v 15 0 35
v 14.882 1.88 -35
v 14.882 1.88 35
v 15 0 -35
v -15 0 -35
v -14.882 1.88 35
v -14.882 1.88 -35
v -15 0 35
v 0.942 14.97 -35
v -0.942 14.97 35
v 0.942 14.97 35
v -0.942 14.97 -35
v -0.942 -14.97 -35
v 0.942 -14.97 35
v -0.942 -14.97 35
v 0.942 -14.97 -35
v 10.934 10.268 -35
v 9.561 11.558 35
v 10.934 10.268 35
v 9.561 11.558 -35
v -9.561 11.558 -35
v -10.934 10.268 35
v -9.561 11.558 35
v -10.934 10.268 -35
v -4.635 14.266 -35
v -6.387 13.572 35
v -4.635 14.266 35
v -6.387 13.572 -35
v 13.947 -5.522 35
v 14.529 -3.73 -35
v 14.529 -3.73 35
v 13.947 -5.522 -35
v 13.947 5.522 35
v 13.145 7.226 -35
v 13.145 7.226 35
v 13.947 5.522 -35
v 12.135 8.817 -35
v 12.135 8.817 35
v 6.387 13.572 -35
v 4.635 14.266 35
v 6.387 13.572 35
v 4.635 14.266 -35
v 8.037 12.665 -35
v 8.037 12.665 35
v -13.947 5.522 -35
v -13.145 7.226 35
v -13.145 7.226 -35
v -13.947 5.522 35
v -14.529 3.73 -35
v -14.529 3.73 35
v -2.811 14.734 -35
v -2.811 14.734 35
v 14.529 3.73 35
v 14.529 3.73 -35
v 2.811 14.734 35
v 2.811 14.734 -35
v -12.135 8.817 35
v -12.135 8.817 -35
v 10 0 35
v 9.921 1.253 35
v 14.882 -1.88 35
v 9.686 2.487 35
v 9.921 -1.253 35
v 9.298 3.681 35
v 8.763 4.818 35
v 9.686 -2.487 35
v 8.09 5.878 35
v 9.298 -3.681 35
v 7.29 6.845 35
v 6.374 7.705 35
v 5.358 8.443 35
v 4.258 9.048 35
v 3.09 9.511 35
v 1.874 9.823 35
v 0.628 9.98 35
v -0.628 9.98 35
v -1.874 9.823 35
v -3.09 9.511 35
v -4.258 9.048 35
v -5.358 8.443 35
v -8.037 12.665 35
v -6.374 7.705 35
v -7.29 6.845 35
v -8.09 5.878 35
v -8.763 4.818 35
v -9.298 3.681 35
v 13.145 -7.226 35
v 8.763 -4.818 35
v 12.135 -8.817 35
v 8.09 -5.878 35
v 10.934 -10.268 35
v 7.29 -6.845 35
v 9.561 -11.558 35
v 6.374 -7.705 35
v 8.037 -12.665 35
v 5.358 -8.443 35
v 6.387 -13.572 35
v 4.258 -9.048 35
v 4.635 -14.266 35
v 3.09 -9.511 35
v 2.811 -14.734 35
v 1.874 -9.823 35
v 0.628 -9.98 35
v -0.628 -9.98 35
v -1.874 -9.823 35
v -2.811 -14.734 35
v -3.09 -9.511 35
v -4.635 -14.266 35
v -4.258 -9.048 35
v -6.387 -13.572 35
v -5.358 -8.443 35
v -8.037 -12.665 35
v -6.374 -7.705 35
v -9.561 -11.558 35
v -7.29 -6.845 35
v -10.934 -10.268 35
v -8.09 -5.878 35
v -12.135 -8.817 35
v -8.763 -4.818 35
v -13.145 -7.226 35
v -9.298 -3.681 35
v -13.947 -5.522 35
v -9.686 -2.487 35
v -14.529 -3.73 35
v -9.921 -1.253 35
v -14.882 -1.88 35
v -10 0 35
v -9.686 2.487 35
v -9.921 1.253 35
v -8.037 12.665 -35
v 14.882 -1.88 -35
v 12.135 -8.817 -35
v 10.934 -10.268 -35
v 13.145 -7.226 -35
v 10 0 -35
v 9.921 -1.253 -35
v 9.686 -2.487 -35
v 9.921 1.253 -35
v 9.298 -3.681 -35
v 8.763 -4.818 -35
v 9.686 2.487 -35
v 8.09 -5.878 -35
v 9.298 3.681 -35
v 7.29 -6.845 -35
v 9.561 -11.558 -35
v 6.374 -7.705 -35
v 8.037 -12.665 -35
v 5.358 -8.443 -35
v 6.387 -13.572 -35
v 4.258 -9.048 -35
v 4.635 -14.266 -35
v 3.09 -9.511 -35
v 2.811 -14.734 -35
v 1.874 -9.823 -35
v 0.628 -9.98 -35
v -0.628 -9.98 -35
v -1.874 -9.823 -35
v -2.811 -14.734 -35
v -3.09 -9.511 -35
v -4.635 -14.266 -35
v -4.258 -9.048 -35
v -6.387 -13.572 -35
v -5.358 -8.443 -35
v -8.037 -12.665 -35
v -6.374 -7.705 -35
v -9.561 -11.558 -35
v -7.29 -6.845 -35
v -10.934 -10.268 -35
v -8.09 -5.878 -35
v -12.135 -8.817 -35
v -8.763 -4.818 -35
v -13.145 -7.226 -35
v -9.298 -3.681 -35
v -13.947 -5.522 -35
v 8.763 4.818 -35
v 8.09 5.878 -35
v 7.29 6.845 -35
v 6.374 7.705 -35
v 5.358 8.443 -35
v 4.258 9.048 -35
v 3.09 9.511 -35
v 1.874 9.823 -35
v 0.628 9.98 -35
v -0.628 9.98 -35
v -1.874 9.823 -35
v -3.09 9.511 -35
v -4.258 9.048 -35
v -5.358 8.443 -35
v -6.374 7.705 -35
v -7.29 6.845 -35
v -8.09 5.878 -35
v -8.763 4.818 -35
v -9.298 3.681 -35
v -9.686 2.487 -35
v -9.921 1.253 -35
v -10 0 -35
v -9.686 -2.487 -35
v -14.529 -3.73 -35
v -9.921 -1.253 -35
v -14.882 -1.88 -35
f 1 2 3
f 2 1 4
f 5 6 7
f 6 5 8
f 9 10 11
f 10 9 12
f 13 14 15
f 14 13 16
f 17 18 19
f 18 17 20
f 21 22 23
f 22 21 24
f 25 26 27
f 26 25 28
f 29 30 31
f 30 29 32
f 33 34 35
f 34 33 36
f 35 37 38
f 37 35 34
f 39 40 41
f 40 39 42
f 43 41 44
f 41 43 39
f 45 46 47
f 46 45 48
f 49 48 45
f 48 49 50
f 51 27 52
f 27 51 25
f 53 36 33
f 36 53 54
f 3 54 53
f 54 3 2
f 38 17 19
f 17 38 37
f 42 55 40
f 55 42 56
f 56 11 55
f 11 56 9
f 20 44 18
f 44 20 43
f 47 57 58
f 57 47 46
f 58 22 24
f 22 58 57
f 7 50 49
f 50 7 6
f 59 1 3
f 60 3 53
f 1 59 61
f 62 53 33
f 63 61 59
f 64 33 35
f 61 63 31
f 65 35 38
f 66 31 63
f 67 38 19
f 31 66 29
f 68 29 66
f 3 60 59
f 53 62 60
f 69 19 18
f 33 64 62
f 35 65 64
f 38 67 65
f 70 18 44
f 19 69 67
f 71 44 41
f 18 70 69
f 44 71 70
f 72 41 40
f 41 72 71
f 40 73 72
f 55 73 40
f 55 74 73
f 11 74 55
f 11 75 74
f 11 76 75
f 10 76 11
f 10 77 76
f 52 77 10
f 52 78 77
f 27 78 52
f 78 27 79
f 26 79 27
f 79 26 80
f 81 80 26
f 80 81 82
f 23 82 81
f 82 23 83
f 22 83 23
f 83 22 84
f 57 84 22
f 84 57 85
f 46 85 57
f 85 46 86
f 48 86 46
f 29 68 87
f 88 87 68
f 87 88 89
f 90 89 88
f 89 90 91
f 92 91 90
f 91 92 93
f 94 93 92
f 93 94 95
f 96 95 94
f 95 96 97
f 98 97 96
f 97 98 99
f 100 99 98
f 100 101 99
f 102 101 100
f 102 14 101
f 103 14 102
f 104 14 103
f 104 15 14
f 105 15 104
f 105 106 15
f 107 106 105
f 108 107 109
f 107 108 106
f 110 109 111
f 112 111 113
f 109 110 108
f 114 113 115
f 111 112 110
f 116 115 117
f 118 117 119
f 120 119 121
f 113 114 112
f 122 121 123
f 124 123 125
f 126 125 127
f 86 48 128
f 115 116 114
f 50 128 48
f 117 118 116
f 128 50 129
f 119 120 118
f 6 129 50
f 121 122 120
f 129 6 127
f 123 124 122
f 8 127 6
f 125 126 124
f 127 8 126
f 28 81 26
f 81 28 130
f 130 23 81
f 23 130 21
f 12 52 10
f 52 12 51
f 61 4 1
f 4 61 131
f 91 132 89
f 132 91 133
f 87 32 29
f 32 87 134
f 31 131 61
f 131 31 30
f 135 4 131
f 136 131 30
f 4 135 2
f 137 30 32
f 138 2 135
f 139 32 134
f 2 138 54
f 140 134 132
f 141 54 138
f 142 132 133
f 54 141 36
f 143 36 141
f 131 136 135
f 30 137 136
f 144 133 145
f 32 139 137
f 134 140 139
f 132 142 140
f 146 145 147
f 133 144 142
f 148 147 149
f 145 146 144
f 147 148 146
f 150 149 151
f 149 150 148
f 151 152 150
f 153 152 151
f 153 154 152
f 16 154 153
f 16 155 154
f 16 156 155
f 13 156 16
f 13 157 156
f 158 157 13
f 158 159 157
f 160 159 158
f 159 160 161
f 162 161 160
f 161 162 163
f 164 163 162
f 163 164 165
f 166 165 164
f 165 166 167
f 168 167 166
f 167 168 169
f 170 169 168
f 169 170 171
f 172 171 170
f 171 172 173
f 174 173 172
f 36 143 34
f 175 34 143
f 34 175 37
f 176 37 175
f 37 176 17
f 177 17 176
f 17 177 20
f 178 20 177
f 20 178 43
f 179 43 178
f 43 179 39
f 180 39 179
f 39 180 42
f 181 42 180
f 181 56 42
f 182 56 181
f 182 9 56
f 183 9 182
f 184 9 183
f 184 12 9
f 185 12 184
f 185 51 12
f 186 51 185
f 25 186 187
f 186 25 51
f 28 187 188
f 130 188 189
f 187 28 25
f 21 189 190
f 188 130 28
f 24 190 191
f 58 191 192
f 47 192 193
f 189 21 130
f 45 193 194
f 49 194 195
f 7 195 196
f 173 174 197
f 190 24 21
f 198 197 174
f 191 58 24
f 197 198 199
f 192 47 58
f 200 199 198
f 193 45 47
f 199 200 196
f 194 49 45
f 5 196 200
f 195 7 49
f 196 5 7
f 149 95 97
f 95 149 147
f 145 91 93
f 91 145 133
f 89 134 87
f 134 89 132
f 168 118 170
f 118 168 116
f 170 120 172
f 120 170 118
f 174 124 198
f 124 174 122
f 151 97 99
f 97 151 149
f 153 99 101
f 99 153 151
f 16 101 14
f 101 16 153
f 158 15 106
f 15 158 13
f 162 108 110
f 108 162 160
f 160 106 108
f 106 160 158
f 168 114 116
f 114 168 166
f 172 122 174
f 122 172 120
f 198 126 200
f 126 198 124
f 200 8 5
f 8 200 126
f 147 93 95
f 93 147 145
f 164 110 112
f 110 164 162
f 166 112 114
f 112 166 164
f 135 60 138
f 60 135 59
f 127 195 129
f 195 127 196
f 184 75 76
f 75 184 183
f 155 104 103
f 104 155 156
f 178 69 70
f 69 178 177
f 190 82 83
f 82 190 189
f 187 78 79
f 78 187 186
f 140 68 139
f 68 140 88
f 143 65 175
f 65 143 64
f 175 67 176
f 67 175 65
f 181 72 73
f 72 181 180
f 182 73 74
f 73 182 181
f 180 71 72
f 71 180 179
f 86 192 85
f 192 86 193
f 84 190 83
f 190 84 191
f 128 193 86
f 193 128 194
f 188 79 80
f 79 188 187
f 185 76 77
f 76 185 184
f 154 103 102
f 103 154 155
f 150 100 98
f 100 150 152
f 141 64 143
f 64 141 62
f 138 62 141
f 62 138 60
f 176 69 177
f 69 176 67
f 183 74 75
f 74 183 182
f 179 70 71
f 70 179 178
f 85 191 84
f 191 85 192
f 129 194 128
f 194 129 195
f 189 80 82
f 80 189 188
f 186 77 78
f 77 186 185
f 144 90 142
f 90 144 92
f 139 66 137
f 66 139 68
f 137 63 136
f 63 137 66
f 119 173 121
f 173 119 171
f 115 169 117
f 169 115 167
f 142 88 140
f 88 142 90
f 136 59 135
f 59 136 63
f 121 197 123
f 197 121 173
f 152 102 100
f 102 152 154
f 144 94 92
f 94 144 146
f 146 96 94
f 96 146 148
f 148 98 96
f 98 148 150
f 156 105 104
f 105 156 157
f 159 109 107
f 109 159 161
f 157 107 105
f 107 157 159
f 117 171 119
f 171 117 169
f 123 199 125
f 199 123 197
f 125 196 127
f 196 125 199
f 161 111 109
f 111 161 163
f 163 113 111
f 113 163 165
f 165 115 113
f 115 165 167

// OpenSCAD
$fn = 50;


difference() {
	union() {
		translate(v = [0, 0, -35.0000000000]) {
			cylinder(h = 70, r = 15.0000000000);
		}
	}
	union() {
		translate(v = [0, 0, -100.0000000000]) {
			cylinder(h = 200, r = 10);
		}
	}
}
